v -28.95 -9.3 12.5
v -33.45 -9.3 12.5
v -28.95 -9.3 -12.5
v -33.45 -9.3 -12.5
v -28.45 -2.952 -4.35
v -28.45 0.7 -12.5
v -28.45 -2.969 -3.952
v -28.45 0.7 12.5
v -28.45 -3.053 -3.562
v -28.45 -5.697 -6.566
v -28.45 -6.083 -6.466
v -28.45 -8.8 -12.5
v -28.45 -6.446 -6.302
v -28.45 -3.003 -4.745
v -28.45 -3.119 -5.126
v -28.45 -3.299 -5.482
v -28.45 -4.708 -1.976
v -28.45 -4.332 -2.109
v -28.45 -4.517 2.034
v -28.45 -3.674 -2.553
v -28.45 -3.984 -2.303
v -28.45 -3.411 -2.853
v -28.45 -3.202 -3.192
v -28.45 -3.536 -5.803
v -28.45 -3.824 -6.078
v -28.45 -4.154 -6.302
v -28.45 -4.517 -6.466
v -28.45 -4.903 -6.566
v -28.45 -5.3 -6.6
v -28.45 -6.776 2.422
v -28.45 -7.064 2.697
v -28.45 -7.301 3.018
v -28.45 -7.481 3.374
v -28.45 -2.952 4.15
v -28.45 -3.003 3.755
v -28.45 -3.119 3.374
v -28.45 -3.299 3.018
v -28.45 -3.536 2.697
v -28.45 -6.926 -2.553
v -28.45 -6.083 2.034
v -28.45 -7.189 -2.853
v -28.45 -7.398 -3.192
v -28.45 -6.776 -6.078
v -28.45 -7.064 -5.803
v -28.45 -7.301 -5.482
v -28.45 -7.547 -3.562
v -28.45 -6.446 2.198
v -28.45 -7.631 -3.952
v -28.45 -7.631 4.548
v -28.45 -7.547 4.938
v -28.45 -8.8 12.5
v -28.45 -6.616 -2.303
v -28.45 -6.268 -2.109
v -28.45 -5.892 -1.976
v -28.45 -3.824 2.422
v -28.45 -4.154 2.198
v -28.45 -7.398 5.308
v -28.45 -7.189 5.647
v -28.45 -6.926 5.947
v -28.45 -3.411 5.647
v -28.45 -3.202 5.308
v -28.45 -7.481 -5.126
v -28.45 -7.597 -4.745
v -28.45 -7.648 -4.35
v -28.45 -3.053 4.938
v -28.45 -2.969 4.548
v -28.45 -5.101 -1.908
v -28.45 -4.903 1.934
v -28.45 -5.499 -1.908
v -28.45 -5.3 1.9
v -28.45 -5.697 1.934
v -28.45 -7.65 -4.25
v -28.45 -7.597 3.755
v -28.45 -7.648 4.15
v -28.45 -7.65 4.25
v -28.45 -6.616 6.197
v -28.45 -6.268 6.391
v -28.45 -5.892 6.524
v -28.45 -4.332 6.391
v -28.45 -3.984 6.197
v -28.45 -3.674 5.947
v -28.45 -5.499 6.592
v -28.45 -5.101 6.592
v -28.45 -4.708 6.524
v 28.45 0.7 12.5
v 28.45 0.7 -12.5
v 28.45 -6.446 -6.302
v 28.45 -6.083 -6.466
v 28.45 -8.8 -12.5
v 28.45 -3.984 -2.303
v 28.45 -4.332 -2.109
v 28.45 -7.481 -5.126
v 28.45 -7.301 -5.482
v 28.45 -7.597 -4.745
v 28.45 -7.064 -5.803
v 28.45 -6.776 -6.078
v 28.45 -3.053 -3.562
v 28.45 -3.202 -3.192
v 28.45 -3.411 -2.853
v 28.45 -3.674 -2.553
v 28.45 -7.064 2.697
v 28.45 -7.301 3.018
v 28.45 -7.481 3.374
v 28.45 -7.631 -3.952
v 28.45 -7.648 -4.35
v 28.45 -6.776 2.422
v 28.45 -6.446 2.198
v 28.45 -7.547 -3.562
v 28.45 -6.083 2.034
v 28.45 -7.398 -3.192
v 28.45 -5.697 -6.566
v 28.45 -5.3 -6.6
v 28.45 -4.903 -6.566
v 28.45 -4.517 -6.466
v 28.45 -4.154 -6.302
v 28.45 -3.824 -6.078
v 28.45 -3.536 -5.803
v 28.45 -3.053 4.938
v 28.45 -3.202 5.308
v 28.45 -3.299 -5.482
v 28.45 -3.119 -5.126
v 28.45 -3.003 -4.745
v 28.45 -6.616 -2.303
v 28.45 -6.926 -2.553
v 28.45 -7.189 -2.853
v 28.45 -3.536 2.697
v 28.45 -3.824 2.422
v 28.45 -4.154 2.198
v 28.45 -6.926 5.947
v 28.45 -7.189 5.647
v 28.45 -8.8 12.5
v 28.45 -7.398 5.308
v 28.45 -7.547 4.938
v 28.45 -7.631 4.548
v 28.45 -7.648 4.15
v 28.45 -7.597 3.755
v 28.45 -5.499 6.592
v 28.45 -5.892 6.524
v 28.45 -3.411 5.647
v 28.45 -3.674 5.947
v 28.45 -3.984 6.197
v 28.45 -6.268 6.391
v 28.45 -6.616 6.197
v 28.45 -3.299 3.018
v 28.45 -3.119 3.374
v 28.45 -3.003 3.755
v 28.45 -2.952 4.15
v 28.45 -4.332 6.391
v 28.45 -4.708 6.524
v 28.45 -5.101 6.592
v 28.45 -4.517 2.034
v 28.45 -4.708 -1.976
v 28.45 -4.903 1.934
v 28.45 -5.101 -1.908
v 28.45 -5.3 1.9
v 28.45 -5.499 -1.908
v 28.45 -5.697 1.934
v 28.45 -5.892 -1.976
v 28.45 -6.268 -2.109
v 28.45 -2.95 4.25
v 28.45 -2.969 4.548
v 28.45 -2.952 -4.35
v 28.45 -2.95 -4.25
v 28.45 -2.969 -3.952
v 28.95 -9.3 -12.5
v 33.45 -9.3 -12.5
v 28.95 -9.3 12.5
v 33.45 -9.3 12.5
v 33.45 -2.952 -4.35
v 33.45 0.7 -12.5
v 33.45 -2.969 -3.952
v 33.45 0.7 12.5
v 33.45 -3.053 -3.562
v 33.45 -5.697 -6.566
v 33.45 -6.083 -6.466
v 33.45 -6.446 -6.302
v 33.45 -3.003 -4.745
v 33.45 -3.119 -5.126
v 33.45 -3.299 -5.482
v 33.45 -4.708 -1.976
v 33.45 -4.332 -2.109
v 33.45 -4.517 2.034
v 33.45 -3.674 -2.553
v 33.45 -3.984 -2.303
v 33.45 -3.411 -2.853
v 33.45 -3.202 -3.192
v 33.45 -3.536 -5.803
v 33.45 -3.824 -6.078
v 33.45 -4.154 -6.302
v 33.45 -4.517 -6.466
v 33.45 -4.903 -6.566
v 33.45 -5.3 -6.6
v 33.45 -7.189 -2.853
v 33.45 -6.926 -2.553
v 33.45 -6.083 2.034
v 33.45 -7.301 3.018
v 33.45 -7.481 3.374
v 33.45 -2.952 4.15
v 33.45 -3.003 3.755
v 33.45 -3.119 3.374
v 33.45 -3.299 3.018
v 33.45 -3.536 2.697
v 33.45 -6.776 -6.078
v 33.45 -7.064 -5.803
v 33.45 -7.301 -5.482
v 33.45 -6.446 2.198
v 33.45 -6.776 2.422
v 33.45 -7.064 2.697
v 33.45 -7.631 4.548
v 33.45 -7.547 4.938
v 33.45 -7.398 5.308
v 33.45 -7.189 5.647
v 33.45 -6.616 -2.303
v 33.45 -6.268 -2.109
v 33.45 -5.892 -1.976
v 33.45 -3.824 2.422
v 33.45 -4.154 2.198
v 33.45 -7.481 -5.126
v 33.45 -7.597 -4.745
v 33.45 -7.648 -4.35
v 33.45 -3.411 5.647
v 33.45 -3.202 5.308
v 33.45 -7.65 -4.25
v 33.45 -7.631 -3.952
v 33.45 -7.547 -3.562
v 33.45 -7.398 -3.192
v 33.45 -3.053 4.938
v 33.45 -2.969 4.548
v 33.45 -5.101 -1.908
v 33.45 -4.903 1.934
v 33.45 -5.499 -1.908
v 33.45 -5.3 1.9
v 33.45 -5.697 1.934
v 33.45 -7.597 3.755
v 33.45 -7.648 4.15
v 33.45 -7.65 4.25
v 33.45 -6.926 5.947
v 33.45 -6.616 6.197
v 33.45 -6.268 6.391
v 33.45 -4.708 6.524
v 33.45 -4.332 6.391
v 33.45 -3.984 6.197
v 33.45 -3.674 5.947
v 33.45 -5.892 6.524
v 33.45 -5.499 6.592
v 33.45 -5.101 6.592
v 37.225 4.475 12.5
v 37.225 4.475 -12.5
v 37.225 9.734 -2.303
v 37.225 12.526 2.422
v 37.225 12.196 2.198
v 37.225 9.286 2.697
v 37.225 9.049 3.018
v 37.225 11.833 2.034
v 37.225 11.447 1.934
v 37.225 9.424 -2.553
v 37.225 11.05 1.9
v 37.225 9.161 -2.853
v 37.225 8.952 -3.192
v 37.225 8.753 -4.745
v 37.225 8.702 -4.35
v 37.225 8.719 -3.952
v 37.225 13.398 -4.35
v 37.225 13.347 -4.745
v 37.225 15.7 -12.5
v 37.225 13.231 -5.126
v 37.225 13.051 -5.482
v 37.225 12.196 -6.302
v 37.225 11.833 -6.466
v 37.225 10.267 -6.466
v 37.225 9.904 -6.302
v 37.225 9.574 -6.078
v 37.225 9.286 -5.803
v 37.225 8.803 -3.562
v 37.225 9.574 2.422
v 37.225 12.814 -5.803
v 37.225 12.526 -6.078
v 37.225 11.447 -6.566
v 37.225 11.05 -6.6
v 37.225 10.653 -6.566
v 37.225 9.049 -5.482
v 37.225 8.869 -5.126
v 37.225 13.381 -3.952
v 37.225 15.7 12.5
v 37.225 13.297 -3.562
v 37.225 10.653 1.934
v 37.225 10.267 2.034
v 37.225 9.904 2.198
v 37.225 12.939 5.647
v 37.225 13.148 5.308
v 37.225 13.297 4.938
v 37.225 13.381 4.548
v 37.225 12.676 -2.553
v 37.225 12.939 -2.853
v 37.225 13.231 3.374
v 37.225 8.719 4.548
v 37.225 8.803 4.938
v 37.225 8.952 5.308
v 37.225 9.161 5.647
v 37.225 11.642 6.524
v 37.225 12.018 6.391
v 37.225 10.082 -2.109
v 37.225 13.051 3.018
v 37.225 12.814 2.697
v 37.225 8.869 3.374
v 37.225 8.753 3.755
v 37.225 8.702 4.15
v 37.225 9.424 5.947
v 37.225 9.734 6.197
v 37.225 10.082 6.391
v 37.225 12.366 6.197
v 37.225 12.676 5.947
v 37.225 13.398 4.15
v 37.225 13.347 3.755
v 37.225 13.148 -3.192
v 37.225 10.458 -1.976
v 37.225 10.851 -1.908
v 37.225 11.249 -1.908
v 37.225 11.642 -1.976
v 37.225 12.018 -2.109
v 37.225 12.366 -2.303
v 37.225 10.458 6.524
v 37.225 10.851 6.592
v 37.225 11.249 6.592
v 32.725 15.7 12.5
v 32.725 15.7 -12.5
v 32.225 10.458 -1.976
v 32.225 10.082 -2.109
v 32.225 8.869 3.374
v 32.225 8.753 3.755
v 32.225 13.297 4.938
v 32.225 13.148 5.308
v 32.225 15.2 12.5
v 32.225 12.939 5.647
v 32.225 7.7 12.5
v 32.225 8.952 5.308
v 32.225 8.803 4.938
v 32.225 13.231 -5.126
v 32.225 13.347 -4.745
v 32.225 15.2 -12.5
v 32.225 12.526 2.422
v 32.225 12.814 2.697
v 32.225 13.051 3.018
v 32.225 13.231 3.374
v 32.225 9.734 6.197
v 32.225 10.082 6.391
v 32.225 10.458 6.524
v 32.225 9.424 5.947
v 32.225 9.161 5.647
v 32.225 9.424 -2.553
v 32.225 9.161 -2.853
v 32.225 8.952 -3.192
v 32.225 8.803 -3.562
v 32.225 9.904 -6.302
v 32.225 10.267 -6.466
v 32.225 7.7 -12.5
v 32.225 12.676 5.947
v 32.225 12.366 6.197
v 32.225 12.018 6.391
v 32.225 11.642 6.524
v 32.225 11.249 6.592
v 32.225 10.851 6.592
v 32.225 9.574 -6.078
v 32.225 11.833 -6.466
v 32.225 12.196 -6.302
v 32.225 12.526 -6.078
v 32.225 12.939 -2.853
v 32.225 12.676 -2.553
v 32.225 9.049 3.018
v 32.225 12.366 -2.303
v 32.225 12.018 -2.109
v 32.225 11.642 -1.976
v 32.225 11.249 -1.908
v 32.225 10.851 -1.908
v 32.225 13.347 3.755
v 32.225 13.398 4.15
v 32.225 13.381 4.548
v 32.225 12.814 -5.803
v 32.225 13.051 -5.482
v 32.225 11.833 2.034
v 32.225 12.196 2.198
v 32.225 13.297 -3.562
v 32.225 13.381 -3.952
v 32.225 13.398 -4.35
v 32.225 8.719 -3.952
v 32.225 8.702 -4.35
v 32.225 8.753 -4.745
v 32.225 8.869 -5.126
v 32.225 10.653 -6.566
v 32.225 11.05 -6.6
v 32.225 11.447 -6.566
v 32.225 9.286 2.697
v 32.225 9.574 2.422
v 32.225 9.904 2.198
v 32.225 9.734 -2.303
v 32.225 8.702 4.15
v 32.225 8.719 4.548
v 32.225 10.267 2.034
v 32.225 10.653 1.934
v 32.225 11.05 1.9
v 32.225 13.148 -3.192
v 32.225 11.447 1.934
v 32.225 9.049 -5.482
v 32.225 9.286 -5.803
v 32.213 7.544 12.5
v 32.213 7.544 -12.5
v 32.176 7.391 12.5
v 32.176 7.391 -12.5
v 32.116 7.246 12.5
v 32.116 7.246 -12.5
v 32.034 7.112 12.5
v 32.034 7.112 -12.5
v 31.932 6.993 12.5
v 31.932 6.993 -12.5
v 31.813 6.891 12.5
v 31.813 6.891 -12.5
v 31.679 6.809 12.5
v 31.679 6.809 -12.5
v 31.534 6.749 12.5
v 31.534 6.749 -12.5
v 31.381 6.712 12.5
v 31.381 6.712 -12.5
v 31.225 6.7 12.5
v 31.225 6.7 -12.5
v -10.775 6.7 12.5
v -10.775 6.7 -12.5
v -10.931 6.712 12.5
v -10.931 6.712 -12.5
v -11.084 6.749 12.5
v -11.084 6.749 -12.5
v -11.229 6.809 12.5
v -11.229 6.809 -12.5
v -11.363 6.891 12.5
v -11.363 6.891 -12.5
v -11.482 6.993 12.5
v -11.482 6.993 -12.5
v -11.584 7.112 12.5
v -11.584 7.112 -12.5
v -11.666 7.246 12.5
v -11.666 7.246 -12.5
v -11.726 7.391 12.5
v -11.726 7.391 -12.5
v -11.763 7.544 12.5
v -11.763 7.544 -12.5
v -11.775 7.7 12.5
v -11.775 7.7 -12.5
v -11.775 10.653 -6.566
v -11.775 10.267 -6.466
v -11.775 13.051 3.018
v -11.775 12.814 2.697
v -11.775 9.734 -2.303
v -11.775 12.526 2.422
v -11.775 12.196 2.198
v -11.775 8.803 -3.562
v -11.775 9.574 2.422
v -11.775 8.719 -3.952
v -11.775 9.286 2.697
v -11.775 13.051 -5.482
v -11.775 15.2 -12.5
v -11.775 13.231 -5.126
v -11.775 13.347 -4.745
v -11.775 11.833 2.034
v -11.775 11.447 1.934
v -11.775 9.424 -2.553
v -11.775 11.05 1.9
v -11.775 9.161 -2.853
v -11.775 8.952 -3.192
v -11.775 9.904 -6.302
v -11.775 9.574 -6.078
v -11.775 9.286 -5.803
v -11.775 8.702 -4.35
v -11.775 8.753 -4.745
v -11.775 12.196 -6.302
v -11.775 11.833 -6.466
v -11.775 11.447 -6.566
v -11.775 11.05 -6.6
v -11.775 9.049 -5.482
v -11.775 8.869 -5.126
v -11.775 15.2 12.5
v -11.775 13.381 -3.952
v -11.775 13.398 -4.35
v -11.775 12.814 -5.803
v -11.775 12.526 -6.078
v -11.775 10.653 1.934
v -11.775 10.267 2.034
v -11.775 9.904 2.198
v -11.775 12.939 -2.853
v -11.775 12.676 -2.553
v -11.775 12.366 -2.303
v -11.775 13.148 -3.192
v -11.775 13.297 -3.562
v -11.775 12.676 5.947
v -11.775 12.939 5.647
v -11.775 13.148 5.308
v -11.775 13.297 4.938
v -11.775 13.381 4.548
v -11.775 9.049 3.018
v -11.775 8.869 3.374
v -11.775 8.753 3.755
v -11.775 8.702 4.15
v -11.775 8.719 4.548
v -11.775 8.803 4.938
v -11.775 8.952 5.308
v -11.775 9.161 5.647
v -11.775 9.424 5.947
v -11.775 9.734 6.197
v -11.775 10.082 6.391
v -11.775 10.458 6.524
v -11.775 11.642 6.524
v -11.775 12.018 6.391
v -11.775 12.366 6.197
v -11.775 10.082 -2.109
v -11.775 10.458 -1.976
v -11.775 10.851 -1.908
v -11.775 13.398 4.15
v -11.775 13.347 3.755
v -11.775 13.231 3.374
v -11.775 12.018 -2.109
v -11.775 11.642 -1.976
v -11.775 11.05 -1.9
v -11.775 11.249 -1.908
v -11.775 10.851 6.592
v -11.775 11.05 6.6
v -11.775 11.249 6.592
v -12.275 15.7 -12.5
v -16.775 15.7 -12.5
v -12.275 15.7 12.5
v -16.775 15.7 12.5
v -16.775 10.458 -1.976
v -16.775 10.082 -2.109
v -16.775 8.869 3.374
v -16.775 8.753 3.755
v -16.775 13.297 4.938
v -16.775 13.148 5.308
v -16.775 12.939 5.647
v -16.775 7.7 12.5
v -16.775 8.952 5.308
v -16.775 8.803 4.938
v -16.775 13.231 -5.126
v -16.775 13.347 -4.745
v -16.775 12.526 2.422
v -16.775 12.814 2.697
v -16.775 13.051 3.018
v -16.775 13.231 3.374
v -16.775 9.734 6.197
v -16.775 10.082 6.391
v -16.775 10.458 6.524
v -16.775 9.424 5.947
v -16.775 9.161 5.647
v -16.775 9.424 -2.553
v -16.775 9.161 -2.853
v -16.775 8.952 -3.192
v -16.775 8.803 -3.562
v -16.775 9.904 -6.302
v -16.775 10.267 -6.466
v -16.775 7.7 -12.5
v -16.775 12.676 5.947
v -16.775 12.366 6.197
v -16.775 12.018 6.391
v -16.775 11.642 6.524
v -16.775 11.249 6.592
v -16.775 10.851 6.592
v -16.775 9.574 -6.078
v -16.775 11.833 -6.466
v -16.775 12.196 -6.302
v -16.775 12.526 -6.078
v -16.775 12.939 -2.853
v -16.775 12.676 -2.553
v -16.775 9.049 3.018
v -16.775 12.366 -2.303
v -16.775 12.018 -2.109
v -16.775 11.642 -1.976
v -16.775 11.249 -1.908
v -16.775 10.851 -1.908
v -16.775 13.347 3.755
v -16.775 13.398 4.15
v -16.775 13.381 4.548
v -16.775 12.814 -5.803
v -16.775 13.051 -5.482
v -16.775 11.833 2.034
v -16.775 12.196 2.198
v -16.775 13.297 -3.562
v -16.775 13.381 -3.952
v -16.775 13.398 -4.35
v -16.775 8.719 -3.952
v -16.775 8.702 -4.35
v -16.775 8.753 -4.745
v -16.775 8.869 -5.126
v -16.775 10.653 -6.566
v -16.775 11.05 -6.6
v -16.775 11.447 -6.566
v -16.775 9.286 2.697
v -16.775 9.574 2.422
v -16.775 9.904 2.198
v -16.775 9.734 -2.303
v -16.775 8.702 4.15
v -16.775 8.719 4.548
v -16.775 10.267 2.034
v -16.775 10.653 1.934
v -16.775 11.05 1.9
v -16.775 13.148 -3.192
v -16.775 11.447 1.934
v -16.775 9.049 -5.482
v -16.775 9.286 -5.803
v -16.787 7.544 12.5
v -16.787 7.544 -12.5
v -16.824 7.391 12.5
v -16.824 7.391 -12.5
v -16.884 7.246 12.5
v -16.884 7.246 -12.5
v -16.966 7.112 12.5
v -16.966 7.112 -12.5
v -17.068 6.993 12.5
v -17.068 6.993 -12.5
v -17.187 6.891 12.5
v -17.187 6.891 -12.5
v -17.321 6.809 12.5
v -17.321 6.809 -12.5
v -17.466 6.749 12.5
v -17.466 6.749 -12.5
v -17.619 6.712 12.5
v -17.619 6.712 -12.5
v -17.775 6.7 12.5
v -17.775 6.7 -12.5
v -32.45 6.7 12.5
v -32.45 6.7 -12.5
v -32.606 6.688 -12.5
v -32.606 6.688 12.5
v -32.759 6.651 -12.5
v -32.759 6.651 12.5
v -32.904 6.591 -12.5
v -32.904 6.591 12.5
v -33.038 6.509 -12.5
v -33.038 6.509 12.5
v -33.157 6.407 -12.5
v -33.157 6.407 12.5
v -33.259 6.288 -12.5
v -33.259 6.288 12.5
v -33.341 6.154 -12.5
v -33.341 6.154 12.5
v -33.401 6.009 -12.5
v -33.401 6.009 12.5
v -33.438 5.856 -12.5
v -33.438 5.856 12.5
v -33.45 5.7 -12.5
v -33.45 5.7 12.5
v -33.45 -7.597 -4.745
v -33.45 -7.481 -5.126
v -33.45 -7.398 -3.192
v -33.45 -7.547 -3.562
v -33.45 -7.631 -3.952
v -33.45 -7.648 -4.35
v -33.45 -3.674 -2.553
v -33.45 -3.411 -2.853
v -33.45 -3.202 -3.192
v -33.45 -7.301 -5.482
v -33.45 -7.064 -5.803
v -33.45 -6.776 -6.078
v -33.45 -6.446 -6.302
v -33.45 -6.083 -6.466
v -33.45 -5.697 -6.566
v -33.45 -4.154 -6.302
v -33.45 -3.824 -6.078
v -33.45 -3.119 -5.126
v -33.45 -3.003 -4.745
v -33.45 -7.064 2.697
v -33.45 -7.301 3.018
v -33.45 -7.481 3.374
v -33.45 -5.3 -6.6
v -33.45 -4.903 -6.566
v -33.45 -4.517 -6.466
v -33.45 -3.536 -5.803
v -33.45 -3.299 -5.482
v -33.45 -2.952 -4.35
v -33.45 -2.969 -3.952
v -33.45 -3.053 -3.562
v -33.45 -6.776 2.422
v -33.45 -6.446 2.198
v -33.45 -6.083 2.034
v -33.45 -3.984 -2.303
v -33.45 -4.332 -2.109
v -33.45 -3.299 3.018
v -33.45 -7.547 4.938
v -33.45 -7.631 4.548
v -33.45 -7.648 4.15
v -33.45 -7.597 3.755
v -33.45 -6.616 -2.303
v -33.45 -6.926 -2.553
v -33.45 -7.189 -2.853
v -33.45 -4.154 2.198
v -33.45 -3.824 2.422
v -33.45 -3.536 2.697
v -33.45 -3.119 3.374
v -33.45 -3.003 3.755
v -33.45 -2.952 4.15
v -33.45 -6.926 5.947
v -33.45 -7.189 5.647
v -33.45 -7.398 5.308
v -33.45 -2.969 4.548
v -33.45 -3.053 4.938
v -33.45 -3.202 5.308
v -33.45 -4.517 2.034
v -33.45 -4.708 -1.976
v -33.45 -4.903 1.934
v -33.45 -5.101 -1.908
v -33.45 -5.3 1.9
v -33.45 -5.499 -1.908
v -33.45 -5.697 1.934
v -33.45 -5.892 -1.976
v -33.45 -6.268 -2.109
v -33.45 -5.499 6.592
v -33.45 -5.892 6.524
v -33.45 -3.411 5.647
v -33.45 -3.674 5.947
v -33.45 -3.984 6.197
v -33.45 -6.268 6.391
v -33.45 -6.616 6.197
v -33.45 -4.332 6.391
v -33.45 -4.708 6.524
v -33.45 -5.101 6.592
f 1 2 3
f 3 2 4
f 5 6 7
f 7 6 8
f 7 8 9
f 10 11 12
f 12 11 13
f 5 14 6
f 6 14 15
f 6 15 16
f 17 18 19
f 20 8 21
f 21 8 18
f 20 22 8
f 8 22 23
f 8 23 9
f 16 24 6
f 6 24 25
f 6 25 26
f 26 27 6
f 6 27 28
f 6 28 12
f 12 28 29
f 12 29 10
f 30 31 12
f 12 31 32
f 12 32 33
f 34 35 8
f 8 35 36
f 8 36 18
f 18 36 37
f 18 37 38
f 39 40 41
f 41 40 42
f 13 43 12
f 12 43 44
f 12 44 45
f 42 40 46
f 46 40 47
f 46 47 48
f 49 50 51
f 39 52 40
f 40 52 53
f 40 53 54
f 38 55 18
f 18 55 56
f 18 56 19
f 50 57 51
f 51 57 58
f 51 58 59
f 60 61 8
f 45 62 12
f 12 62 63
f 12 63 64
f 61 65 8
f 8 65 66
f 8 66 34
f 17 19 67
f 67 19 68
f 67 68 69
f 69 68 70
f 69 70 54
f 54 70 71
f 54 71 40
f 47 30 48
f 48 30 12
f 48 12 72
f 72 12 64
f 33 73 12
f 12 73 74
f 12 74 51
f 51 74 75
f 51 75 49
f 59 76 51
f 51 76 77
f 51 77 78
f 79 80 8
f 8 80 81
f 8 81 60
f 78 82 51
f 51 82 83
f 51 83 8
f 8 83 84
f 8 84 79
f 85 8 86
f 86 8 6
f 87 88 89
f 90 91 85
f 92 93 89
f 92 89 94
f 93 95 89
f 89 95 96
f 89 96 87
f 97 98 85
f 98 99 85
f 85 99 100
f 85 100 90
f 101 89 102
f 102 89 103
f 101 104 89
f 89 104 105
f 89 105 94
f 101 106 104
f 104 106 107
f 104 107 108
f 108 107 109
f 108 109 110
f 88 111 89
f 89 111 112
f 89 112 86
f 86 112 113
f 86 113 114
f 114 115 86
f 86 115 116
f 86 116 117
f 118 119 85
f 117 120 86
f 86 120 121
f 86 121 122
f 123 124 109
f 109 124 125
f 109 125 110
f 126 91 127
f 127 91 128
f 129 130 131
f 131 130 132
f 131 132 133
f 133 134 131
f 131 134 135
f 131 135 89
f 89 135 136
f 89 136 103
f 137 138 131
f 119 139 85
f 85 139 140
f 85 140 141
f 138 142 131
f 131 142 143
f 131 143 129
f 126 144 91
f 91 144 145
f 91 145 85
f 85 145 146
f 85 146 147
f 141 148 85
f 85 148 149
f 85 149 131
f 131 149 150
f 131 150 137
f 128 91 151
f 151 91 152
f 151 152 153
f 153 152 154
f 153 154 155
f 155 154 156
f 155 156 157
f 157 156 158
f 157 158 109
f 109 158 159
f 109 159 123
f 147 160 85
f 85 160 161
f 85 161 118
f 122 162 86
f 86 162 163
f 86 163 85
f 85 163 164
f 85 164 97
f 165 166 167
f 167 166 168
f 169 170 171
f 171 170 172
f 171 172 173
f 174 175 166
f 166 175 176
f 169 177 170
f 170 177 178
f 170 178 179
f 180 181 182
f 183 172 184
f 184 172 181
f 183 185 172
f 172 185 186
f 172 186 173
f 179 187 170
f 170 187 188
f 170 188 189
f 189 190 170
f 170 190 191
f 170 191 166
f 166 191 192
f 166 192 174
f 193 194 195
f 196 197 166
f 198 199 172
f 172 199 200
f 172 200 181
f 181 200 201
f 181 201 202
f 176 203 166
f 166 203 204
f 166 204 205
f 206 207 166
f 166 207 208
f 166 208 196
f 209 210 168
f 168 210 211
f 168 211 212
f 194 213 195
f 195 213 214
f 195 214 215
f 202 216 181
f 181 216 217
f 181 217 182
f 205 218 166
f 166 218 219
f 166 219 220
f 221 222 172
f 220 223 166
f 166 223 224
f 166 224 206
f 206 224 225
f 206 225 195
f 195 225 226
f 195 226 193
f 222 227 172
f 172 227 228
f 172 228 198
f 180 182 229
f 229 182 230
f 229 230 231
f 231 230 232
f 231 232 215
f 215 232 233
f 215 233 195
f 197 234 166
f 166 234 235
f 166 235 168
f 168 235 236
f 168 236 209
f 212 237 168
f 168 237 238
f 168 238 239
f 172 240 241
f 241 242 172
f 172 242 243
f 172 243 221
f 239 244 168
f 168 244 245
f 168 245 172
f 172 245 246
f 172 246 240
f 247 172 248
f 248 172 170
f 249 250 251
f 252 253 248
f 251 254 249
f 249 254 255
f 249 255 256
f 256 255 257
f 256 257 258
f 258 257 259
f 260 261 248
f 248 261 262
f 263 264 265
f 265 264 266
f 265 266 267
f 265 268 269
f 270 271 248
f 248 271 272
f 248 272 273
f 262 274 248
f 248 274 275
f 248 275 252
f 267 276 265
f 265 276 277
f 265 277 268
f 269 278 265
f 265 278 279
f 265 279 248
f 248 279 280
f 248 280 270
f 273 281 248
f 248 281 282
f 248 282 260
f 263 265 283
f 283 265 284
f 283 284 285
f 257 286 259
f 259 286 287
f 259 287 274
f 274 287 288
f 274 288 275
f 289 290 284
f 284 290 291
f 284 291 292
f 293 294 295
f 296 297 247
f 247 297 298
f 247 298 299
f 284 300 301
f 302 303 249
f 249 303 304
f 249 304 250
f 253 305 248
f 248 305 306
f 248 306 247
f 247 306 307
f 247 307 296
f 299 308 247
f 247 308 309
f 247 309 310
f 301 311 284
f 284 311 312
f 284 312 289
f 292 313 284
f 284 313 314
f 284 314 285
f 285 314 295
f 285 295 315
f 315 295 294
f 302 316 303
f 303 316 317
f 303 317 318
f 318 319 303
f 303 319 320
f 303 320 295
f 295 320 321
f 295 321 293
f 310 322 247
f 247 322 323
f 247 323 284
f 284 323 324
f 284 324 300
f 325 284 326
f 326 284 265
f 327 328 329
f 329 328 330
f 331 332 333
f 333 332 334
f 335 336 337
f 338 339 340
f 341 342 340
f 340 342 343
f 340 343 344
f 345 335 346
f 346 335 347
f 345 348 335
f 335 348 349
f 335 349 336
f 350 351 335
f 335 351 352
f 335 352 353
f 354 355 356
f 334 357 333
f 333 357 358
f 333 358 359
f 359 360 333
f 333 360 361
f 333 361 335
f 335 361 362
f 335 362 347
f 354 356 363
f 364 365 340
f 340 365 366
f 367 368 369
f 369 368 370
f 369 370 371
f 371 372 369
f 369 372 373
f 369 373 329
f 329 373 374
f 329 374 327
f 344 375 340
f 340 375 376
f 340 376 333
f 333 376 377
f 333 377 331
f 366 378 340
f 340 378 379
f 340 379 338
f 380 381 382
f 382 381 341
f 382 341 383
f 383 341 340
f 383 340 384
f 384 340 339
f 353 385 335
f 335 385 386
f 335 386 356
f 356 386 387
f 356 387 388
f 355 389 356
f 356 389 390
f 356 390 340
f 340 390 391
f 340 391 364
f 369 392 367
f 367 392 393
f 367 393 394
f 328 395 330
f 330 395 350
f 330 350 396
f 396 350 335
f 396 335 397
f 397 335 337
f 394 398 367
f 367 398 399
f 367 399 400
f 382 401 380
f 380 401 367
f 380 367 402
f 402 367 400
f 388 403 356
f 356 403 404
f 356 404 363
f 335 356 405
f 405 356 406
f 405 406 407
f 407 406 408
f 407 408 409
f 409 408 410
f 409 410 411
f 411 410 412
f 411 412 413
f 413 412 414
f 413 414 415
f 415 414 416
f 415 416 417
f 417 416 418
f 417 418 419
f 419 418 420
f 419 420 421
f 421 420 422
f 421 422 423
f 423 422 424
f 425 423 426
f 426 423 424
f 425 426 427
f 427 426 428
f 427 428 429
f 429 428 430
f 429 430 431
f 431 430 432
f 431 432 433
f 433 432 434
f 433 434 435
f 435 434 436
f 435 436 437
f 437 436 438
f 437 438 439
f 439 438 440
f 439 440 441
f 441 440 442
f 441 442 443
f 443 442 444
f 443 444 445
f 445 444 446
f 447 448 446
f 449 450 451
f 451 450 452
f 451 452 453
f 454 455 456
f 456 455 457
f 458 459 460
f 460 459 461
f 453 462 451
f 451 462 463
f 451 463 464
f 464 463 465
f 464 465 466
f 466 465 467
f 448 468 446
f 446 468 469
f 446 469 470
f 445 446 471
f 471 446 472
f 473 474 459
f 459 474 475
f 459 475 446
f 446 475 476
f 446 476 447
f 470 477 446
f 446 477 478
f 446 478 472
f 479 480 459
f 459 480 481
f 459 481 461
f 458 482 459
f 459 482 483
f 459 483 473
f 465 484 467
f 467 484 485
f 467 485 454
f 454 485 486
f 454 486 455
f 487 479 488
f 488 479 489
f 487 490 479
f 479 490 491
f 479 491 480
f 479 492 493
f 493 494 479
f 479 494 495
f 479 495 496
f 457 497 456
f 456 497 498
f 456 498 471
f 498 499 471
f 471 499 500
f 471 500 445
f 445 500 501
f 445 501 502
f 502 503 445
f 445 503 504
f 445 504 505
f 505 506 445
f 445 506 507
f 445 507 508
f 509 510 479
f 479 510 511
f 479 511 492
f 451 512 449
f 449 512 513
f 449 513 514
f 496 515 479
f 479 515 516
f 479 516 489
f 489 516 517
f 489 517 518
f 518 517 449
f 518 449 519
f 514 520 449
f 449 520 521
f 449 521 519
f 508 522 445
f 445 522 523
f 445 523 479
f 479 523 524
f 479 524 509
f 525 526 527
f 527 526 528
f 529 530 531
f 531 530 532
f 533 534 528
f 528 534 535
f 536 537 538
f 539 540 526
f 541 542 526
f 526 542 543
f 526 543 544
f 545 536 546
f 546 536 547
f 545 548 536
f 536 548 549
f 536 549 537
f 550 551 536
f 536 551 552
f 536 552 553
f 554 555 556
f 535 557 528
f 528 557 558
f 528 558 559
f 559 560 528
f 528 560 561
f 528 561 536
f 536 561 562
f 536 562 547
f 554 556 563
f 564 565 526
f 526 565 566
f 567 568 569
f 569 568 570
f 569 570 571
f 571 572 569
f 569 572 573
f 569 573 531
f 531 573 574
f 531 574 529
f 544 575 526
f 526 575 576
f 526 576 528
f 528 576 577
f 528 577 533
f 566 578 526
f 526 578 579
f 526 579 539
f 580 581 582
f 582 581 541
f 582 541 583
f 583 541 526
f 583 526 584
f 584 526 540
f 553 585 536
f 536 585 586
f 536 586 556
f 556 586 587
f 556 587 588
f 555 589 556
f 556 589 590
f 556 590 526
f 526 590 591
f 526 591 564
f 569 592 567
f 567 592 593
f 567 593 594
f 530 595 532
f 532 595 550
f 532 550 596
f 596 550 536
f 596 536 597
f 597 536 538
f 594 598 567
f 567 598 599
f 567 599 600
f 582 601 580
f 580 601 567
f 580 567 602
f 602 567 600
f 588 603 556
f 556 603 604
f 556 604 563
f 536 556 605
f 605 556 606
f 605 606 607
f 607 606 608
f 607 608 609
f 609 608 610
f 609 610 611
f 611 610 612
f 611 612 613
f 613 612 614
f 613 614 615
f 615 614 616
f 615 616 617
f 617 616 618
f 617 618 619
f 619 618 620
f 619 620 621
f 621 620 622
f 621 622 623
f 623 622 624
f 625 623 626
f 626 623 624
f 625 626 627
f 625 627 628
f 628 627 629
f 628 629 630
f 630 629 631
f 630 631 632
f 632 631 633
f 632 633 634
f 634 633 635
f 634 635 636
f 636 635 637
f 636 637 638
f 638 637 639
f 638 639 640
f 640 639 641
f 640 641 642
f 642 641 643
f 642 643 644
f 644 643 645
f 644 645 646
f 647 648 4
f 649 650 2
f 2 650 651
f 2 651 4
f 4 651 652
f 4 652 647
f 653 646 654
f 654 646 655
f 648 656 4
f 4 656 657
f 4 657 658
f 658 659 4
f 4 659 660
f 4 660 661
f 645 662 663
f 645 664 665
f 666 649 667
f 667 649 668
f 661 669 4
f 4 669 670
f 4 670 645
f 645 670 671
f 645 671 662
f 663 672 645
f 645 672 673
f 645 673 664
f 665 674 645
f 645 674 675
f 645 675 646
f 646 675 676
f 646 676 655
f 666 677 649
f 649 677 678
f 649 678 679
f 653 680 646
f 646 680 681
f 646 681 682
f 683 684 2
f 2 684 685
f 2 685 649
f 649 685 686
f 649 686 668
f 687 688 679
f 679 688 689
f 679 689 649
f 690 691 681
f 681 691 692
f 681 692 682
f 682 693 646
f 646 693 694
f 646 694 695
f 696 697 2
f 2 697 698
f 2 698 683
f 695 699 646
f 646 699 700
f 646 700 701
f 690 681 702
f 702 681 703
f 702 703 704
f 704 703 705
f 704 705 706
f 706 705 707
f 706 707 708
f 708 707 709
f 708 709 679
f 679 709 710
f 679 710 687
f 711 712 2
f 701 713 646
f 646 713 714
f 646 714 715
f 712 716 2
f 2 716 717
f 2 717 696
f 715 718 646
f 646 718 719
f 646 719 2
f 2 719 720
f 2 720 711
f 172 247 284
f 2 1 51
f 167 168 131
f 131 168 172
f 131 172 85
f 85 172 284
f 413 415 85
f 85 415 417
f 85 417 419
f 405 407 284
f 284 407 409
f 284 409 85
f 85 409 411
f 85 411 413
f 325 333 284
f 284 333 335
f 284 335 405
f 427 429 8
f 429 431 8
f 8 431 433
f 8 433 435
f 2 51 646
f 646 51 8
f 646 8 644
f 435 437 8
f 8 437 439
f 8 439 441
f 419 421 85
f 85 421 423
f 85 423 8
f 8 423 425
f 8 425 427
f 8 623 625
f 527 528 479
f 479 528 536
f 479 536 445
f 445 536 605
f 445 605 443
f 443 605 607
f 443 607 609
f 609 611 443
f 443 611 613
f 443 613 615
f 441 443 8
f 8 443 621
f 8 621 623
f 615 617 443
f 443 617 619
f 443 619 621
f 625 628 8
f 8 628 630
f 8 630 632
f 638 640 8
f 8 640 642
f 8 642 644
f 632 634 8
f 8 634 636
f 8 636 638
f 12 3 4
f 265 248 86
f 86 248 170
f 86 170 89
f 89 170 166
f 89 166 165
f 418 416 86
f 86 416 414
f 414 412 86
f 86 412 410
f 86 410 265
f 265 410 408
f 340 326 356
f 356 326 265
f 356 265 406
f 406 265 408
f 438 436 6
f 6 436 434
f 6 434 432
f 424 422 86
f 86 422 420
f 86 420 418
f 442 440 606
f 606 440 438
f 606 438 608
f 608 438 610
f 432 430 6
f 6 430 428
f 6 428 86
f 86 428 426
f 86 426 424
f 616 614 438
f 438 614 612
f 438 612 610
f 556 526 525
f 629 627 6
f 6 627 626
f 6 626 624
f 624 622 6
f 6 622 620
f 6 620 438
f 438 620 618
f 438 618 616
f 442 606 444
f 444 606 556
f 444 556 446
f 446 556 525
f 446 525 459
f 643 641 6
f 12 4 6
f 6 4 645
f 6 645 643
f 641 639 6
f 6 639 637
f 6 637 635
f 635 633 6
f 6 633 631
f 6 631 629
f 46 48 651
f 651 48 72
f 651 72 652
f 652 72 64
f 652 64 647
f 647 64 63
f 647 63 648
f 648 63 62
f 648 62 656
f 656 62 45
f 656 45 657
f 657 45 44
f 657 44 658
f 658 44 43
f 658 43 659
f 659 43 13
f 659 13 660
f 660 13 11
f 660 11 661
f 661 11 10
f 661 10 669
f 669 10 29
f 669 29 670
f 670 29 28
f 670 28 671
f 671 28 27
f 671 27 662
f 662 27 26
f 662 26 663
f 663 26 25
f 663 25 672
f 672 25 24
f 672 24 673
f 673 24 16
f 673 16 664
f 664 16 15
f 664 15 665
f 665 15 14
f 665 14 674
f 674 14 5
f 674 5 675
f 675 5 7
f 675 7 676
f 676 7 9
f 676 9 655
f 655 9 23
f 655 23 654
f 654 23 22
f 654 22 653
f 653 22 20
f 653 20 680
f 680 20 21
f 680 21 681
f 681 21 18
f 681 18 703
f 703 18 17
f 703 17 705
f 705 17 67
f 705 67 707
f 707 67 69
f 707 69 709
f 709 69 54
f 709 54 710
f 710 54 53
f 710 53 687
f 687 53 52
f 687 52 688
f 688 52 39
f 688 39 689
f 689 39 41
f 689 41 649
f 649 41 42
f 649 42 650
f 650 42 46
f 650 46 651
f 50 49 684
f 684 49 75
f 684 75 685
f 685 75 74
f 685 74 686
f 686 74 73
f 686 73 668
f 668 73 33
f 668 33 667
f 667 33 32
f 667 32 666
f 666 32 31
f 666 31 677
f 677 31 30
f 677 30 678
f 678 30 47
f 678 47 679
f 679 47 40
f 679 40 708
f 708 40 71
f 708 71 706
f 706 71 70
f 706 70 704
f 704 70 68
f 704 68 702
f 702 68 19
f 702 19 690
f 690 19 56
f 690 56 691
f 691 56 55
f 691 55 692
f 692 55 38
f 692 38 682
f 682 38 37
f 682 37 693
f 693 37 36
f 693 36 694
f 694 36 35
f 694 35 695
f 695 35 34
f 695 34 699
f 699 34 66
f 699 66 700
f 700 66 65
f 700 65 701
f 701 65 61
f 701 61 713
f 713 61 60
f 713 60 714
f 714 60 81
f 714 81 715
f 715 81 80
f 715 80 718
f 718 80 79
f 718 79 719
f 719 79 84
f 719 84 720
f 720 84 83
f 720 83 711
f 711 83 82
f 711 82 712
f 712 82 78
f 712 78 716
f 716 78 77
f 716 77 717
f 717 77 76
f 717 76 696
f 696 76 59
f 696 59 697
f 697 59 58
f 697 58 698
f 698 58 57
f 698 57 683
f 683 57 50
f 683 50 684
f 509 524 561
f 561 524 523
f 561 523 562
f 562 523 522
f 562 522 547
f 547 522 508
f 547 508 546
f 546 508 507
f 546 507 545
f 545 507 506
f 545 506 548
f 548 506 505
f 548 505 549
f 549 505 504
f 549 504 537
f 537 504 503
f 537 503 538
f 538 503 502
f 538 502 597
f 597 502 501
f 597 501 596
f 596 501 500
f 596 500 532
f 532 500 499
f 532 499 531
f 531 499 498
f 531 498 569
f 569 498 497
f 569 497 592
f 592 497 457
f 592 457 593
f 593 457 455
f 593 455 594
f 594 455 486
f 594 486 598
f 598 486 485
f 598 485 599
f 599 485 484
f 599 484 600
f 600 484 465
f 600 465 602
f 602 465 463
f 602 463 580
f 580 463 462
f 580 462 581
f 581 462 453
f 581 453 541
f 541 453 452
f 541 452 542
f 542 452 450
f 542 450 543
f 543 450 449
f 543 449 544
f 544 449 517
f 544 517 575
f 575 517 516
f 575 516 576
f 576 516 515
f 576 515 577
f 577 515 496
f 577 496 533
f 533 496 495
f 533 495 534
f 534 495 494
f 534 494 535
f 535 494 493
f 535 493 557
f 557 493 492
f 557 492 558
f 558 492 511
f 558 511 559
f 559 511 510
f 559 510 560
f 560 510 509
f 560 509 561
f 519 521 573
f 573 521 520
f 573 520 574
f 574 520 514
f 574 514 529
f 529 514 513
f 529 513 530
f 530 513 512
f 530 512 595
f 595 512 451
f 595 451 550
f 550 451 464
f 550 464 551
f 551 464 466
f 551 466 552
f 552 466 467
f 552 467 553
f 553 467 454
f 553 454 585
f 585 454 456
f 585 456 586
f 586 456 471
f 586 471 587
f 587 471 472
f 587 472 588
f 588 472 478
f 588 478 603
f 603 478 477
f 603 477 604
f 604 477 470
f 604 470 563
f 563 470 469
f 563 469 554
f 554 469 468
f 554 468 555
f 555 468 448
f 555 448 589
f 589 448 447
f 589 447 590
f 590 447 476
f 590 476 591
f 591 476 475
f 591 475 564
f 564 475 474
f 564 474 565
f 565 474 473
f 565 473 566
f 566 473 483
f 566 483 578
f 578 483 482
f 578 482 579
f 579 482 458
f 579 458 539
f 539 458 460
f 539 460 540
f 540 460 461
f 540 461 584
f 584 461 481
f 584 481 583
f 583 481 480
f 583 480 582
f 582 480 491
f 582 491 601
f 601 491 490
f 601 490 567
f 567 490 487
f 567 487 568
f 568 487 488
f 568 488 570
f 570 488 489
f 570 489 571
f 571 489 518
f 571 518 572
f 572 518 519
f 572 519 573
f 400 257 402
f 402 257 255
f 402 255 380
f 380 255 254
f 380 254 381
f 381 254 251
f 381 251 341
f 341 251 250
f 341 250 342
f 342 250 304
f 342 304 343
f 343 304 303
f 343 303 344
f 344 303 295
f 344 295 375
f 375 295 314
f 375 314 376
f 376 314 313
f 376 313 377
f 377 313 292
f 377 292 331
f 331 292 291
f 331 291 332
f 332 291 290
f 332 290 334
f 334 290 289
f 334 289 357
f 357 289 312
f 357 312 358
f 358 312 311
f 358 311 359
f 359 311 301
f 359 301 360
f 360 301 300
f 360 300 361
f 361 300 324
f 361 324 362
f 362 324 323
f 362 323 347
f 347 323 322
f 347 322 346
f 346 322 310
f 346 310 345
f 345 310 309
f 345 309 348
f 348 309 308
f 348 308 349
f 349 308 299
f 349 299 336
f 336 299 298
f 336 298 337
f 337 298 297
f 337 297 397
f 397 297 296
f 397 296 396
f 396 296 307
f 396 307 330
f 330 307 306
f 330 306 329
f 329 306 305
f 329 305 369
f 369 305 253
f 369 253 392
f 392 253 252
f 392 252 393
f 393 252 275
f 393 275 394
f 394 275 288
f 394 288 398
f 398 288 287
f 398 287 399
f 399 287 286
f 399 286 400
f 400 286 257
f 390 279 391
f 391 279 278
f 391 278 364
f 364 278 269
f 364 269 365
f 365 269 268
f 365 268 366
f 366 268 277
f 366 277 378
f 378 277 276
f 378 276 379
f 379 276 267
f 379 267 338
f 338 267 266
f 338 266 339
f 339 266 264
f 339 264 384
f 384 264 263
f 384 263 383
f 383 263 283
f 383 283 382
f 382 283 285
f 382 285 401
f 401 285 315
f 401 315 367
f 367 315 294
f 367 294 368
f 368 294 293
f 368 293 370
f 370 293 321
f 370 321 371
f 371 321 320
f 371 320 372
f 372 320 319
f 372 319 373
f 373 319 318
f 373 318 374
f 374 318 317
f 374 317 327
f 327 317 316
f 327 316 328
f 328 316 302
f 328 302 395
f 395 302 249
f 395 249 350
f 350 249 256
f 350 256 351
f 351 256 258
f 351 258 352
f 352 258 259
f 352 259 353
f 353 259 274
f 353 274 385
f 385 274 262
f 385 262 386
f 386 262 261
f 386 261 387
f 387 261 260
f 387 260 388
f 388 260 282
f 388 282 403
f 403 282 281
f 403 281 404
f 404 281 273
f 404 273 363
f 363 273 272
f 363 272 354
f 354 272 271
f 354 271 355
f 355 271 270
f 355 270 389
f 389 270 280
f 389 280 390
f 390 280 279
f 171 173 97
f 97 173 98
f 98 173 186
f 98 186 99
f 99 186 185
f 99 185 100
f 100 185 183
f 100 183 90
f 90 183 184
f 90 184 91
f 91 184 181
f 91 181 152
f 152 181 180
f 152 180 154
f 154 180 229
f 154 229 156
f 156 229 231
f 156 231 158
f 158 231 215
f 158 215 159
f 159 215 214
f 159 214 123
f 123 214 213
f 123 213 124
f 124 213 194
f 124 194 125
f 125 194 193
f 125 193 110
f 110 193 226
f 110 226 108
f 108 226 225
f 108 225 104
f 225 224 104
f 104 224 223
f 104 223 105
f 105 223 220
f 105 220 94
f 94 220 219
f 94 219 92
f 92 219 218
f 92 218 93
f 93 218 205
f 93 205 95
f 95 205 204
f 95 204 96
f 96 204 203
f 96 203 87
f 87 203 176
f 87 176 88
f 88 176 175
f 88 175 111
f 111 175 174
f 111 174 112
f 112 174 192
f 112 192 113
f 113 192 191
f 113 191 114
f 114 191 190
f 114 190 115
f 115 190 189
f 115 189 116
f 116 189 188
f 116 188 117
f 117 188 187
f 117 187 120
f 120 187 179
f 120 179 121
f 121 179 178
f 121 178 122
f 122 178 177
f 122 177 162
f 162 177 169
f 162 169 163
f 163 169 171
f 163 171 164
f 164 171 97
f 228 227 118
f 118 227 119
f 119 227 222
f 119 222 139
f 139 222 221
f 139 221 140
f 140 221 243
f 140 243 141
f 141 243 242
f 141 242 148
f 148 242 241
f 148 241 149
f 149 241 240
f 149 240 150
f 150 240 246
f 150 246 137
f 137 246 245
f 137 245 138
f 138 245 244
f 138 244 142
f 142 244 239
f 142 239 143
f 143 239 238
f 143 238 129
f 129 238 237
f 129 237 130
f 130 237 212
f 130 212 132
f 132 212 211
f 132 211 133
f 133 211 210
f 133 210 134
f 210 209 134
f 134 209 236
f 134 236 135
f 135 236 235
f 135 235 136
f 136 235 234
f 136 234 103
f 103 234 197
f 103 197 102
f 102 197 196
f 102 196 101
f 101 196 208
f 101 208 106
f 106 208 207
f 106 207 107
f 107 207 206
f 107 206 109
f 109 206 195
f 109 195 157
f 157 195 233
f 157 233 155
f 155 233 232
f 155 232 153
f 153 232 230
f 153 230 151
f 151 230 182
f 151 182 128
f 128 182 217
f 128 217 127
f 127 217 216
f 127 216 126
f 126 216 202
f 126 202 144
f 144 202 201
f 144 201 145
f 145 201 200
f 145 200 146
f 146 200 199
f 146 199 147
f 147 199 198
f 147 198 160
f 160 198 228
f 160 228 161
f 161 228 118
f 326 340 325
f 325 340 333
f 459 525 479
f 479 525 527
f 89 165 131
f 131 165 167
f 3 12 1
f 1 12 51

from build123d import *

# Parameters (mm, degrees)
BOSS_EXTRUDE3_DEPTH     = 12.5
SKETCH6_R               = 2.35
CUT_EXTRUDE1_DEPTH      = 38.225
CUT_EXTRUDE1_DEPTH_BACK = 34.45
CHAMFER1_SIZE           = 0.5


with BuildPart() as part:
    # Sketch5 → Boss-Extrude3 (new body, symmetric)
    with BuildSketch(Plane.XY):
        with BuildLine():
            Line((33.45, 0.7), (37.225, 4.475))
            Line((37.225, 4.475), (37.225, 15.7))
            Line((37.225, 15.7), (32.225, 15.7))
            Line((32.225, 15.7), (32.225, 7.7))
            ThreePointArc((32.225, 7.7), (31.932106781, 6.992893219), (31.225, 6.7))
            Line((31.225, 6.7), (-10.775, 6.7))
            ThreePointArc((-10.775, 6.7), (-11.482106781, 6.992893219), (-11.775, 7.7))
            Line((-11.775, 7.7), (-11.775, 15.7))
            Line((-11.775, 15.7), (-16.775, 15.7))
            Line((-16.775, 15.7), (-16.775, 7.7))
            ThreePointArc((-16.775, 7.7), (-17.067893219, 6.992893219), (-17.775, 6.7))
            Line((-17.775, 6.7), (-32.45, 6.7))
            ThreePointArc((-32.45, 6.7), (-33.157106781, 6.407106781), (-33.45, 5.7))
            Line((-33.45, 5.7), (-33.45, -9.3))
            Line((-33.45, -9.3), (-28.45, -9.3))
            Line((-28.45, -9.3), (-28.45, 0.7))
            Line((-28.45, 0.7), (28.45, 0.7))
            Line((28.45, 0.7), (28.45, -9.3))
            Line((28.45, -9.3), (33.45, -9.3))
            Line((33.45, -9.3), (33.45, 0.7))
        make_face()
    extrude(amount=BOSS_EXTRUDE3_DEPTH, both=True)

    # Sketch6 → Cut-Extrude1 (cut, two sides)
    with BuildSketch(Plane(origin=(0, 0, 0), x_dir=(0, 0, -1), z_dir=(1, 0, 0))) as cut_extrude1_sk:
        with Locations((-4.25, 11.05)):
            Circle(SKETCH6_R)
        with Locations((4.25, 11.05)):
            Circle(SKETCH6_R)
        with Locations((4.25, -5.3)):
            Circle(SKETCH6_R)
        with Locations((-4.25, -5.3)):
            Circle(SKETCH6_R)
    extrude(amount=CUT_EXTRUDE1_DEPTH, mode=Mode.SUBTRACT)
    extrude(cut_extrude1_sk.sketch, amount=-CUT_EXTRUDE1_DEPTH_BACK, mode=Mode.SUBTRACT)

    # Chamfer1
    chamfer1_edges = [part.edges().sort_by_distance(p)[0] for p in [
        (-11.775, 15.7, 0),
        (32.225, 15.7, 0),
        (28.45, -9.3, 0),
        (-28.45, -9.3, 0),
    ]]
    chamfer(chamfer1_edges, length=CHAMFER1_SIZE)


solid = part.part
